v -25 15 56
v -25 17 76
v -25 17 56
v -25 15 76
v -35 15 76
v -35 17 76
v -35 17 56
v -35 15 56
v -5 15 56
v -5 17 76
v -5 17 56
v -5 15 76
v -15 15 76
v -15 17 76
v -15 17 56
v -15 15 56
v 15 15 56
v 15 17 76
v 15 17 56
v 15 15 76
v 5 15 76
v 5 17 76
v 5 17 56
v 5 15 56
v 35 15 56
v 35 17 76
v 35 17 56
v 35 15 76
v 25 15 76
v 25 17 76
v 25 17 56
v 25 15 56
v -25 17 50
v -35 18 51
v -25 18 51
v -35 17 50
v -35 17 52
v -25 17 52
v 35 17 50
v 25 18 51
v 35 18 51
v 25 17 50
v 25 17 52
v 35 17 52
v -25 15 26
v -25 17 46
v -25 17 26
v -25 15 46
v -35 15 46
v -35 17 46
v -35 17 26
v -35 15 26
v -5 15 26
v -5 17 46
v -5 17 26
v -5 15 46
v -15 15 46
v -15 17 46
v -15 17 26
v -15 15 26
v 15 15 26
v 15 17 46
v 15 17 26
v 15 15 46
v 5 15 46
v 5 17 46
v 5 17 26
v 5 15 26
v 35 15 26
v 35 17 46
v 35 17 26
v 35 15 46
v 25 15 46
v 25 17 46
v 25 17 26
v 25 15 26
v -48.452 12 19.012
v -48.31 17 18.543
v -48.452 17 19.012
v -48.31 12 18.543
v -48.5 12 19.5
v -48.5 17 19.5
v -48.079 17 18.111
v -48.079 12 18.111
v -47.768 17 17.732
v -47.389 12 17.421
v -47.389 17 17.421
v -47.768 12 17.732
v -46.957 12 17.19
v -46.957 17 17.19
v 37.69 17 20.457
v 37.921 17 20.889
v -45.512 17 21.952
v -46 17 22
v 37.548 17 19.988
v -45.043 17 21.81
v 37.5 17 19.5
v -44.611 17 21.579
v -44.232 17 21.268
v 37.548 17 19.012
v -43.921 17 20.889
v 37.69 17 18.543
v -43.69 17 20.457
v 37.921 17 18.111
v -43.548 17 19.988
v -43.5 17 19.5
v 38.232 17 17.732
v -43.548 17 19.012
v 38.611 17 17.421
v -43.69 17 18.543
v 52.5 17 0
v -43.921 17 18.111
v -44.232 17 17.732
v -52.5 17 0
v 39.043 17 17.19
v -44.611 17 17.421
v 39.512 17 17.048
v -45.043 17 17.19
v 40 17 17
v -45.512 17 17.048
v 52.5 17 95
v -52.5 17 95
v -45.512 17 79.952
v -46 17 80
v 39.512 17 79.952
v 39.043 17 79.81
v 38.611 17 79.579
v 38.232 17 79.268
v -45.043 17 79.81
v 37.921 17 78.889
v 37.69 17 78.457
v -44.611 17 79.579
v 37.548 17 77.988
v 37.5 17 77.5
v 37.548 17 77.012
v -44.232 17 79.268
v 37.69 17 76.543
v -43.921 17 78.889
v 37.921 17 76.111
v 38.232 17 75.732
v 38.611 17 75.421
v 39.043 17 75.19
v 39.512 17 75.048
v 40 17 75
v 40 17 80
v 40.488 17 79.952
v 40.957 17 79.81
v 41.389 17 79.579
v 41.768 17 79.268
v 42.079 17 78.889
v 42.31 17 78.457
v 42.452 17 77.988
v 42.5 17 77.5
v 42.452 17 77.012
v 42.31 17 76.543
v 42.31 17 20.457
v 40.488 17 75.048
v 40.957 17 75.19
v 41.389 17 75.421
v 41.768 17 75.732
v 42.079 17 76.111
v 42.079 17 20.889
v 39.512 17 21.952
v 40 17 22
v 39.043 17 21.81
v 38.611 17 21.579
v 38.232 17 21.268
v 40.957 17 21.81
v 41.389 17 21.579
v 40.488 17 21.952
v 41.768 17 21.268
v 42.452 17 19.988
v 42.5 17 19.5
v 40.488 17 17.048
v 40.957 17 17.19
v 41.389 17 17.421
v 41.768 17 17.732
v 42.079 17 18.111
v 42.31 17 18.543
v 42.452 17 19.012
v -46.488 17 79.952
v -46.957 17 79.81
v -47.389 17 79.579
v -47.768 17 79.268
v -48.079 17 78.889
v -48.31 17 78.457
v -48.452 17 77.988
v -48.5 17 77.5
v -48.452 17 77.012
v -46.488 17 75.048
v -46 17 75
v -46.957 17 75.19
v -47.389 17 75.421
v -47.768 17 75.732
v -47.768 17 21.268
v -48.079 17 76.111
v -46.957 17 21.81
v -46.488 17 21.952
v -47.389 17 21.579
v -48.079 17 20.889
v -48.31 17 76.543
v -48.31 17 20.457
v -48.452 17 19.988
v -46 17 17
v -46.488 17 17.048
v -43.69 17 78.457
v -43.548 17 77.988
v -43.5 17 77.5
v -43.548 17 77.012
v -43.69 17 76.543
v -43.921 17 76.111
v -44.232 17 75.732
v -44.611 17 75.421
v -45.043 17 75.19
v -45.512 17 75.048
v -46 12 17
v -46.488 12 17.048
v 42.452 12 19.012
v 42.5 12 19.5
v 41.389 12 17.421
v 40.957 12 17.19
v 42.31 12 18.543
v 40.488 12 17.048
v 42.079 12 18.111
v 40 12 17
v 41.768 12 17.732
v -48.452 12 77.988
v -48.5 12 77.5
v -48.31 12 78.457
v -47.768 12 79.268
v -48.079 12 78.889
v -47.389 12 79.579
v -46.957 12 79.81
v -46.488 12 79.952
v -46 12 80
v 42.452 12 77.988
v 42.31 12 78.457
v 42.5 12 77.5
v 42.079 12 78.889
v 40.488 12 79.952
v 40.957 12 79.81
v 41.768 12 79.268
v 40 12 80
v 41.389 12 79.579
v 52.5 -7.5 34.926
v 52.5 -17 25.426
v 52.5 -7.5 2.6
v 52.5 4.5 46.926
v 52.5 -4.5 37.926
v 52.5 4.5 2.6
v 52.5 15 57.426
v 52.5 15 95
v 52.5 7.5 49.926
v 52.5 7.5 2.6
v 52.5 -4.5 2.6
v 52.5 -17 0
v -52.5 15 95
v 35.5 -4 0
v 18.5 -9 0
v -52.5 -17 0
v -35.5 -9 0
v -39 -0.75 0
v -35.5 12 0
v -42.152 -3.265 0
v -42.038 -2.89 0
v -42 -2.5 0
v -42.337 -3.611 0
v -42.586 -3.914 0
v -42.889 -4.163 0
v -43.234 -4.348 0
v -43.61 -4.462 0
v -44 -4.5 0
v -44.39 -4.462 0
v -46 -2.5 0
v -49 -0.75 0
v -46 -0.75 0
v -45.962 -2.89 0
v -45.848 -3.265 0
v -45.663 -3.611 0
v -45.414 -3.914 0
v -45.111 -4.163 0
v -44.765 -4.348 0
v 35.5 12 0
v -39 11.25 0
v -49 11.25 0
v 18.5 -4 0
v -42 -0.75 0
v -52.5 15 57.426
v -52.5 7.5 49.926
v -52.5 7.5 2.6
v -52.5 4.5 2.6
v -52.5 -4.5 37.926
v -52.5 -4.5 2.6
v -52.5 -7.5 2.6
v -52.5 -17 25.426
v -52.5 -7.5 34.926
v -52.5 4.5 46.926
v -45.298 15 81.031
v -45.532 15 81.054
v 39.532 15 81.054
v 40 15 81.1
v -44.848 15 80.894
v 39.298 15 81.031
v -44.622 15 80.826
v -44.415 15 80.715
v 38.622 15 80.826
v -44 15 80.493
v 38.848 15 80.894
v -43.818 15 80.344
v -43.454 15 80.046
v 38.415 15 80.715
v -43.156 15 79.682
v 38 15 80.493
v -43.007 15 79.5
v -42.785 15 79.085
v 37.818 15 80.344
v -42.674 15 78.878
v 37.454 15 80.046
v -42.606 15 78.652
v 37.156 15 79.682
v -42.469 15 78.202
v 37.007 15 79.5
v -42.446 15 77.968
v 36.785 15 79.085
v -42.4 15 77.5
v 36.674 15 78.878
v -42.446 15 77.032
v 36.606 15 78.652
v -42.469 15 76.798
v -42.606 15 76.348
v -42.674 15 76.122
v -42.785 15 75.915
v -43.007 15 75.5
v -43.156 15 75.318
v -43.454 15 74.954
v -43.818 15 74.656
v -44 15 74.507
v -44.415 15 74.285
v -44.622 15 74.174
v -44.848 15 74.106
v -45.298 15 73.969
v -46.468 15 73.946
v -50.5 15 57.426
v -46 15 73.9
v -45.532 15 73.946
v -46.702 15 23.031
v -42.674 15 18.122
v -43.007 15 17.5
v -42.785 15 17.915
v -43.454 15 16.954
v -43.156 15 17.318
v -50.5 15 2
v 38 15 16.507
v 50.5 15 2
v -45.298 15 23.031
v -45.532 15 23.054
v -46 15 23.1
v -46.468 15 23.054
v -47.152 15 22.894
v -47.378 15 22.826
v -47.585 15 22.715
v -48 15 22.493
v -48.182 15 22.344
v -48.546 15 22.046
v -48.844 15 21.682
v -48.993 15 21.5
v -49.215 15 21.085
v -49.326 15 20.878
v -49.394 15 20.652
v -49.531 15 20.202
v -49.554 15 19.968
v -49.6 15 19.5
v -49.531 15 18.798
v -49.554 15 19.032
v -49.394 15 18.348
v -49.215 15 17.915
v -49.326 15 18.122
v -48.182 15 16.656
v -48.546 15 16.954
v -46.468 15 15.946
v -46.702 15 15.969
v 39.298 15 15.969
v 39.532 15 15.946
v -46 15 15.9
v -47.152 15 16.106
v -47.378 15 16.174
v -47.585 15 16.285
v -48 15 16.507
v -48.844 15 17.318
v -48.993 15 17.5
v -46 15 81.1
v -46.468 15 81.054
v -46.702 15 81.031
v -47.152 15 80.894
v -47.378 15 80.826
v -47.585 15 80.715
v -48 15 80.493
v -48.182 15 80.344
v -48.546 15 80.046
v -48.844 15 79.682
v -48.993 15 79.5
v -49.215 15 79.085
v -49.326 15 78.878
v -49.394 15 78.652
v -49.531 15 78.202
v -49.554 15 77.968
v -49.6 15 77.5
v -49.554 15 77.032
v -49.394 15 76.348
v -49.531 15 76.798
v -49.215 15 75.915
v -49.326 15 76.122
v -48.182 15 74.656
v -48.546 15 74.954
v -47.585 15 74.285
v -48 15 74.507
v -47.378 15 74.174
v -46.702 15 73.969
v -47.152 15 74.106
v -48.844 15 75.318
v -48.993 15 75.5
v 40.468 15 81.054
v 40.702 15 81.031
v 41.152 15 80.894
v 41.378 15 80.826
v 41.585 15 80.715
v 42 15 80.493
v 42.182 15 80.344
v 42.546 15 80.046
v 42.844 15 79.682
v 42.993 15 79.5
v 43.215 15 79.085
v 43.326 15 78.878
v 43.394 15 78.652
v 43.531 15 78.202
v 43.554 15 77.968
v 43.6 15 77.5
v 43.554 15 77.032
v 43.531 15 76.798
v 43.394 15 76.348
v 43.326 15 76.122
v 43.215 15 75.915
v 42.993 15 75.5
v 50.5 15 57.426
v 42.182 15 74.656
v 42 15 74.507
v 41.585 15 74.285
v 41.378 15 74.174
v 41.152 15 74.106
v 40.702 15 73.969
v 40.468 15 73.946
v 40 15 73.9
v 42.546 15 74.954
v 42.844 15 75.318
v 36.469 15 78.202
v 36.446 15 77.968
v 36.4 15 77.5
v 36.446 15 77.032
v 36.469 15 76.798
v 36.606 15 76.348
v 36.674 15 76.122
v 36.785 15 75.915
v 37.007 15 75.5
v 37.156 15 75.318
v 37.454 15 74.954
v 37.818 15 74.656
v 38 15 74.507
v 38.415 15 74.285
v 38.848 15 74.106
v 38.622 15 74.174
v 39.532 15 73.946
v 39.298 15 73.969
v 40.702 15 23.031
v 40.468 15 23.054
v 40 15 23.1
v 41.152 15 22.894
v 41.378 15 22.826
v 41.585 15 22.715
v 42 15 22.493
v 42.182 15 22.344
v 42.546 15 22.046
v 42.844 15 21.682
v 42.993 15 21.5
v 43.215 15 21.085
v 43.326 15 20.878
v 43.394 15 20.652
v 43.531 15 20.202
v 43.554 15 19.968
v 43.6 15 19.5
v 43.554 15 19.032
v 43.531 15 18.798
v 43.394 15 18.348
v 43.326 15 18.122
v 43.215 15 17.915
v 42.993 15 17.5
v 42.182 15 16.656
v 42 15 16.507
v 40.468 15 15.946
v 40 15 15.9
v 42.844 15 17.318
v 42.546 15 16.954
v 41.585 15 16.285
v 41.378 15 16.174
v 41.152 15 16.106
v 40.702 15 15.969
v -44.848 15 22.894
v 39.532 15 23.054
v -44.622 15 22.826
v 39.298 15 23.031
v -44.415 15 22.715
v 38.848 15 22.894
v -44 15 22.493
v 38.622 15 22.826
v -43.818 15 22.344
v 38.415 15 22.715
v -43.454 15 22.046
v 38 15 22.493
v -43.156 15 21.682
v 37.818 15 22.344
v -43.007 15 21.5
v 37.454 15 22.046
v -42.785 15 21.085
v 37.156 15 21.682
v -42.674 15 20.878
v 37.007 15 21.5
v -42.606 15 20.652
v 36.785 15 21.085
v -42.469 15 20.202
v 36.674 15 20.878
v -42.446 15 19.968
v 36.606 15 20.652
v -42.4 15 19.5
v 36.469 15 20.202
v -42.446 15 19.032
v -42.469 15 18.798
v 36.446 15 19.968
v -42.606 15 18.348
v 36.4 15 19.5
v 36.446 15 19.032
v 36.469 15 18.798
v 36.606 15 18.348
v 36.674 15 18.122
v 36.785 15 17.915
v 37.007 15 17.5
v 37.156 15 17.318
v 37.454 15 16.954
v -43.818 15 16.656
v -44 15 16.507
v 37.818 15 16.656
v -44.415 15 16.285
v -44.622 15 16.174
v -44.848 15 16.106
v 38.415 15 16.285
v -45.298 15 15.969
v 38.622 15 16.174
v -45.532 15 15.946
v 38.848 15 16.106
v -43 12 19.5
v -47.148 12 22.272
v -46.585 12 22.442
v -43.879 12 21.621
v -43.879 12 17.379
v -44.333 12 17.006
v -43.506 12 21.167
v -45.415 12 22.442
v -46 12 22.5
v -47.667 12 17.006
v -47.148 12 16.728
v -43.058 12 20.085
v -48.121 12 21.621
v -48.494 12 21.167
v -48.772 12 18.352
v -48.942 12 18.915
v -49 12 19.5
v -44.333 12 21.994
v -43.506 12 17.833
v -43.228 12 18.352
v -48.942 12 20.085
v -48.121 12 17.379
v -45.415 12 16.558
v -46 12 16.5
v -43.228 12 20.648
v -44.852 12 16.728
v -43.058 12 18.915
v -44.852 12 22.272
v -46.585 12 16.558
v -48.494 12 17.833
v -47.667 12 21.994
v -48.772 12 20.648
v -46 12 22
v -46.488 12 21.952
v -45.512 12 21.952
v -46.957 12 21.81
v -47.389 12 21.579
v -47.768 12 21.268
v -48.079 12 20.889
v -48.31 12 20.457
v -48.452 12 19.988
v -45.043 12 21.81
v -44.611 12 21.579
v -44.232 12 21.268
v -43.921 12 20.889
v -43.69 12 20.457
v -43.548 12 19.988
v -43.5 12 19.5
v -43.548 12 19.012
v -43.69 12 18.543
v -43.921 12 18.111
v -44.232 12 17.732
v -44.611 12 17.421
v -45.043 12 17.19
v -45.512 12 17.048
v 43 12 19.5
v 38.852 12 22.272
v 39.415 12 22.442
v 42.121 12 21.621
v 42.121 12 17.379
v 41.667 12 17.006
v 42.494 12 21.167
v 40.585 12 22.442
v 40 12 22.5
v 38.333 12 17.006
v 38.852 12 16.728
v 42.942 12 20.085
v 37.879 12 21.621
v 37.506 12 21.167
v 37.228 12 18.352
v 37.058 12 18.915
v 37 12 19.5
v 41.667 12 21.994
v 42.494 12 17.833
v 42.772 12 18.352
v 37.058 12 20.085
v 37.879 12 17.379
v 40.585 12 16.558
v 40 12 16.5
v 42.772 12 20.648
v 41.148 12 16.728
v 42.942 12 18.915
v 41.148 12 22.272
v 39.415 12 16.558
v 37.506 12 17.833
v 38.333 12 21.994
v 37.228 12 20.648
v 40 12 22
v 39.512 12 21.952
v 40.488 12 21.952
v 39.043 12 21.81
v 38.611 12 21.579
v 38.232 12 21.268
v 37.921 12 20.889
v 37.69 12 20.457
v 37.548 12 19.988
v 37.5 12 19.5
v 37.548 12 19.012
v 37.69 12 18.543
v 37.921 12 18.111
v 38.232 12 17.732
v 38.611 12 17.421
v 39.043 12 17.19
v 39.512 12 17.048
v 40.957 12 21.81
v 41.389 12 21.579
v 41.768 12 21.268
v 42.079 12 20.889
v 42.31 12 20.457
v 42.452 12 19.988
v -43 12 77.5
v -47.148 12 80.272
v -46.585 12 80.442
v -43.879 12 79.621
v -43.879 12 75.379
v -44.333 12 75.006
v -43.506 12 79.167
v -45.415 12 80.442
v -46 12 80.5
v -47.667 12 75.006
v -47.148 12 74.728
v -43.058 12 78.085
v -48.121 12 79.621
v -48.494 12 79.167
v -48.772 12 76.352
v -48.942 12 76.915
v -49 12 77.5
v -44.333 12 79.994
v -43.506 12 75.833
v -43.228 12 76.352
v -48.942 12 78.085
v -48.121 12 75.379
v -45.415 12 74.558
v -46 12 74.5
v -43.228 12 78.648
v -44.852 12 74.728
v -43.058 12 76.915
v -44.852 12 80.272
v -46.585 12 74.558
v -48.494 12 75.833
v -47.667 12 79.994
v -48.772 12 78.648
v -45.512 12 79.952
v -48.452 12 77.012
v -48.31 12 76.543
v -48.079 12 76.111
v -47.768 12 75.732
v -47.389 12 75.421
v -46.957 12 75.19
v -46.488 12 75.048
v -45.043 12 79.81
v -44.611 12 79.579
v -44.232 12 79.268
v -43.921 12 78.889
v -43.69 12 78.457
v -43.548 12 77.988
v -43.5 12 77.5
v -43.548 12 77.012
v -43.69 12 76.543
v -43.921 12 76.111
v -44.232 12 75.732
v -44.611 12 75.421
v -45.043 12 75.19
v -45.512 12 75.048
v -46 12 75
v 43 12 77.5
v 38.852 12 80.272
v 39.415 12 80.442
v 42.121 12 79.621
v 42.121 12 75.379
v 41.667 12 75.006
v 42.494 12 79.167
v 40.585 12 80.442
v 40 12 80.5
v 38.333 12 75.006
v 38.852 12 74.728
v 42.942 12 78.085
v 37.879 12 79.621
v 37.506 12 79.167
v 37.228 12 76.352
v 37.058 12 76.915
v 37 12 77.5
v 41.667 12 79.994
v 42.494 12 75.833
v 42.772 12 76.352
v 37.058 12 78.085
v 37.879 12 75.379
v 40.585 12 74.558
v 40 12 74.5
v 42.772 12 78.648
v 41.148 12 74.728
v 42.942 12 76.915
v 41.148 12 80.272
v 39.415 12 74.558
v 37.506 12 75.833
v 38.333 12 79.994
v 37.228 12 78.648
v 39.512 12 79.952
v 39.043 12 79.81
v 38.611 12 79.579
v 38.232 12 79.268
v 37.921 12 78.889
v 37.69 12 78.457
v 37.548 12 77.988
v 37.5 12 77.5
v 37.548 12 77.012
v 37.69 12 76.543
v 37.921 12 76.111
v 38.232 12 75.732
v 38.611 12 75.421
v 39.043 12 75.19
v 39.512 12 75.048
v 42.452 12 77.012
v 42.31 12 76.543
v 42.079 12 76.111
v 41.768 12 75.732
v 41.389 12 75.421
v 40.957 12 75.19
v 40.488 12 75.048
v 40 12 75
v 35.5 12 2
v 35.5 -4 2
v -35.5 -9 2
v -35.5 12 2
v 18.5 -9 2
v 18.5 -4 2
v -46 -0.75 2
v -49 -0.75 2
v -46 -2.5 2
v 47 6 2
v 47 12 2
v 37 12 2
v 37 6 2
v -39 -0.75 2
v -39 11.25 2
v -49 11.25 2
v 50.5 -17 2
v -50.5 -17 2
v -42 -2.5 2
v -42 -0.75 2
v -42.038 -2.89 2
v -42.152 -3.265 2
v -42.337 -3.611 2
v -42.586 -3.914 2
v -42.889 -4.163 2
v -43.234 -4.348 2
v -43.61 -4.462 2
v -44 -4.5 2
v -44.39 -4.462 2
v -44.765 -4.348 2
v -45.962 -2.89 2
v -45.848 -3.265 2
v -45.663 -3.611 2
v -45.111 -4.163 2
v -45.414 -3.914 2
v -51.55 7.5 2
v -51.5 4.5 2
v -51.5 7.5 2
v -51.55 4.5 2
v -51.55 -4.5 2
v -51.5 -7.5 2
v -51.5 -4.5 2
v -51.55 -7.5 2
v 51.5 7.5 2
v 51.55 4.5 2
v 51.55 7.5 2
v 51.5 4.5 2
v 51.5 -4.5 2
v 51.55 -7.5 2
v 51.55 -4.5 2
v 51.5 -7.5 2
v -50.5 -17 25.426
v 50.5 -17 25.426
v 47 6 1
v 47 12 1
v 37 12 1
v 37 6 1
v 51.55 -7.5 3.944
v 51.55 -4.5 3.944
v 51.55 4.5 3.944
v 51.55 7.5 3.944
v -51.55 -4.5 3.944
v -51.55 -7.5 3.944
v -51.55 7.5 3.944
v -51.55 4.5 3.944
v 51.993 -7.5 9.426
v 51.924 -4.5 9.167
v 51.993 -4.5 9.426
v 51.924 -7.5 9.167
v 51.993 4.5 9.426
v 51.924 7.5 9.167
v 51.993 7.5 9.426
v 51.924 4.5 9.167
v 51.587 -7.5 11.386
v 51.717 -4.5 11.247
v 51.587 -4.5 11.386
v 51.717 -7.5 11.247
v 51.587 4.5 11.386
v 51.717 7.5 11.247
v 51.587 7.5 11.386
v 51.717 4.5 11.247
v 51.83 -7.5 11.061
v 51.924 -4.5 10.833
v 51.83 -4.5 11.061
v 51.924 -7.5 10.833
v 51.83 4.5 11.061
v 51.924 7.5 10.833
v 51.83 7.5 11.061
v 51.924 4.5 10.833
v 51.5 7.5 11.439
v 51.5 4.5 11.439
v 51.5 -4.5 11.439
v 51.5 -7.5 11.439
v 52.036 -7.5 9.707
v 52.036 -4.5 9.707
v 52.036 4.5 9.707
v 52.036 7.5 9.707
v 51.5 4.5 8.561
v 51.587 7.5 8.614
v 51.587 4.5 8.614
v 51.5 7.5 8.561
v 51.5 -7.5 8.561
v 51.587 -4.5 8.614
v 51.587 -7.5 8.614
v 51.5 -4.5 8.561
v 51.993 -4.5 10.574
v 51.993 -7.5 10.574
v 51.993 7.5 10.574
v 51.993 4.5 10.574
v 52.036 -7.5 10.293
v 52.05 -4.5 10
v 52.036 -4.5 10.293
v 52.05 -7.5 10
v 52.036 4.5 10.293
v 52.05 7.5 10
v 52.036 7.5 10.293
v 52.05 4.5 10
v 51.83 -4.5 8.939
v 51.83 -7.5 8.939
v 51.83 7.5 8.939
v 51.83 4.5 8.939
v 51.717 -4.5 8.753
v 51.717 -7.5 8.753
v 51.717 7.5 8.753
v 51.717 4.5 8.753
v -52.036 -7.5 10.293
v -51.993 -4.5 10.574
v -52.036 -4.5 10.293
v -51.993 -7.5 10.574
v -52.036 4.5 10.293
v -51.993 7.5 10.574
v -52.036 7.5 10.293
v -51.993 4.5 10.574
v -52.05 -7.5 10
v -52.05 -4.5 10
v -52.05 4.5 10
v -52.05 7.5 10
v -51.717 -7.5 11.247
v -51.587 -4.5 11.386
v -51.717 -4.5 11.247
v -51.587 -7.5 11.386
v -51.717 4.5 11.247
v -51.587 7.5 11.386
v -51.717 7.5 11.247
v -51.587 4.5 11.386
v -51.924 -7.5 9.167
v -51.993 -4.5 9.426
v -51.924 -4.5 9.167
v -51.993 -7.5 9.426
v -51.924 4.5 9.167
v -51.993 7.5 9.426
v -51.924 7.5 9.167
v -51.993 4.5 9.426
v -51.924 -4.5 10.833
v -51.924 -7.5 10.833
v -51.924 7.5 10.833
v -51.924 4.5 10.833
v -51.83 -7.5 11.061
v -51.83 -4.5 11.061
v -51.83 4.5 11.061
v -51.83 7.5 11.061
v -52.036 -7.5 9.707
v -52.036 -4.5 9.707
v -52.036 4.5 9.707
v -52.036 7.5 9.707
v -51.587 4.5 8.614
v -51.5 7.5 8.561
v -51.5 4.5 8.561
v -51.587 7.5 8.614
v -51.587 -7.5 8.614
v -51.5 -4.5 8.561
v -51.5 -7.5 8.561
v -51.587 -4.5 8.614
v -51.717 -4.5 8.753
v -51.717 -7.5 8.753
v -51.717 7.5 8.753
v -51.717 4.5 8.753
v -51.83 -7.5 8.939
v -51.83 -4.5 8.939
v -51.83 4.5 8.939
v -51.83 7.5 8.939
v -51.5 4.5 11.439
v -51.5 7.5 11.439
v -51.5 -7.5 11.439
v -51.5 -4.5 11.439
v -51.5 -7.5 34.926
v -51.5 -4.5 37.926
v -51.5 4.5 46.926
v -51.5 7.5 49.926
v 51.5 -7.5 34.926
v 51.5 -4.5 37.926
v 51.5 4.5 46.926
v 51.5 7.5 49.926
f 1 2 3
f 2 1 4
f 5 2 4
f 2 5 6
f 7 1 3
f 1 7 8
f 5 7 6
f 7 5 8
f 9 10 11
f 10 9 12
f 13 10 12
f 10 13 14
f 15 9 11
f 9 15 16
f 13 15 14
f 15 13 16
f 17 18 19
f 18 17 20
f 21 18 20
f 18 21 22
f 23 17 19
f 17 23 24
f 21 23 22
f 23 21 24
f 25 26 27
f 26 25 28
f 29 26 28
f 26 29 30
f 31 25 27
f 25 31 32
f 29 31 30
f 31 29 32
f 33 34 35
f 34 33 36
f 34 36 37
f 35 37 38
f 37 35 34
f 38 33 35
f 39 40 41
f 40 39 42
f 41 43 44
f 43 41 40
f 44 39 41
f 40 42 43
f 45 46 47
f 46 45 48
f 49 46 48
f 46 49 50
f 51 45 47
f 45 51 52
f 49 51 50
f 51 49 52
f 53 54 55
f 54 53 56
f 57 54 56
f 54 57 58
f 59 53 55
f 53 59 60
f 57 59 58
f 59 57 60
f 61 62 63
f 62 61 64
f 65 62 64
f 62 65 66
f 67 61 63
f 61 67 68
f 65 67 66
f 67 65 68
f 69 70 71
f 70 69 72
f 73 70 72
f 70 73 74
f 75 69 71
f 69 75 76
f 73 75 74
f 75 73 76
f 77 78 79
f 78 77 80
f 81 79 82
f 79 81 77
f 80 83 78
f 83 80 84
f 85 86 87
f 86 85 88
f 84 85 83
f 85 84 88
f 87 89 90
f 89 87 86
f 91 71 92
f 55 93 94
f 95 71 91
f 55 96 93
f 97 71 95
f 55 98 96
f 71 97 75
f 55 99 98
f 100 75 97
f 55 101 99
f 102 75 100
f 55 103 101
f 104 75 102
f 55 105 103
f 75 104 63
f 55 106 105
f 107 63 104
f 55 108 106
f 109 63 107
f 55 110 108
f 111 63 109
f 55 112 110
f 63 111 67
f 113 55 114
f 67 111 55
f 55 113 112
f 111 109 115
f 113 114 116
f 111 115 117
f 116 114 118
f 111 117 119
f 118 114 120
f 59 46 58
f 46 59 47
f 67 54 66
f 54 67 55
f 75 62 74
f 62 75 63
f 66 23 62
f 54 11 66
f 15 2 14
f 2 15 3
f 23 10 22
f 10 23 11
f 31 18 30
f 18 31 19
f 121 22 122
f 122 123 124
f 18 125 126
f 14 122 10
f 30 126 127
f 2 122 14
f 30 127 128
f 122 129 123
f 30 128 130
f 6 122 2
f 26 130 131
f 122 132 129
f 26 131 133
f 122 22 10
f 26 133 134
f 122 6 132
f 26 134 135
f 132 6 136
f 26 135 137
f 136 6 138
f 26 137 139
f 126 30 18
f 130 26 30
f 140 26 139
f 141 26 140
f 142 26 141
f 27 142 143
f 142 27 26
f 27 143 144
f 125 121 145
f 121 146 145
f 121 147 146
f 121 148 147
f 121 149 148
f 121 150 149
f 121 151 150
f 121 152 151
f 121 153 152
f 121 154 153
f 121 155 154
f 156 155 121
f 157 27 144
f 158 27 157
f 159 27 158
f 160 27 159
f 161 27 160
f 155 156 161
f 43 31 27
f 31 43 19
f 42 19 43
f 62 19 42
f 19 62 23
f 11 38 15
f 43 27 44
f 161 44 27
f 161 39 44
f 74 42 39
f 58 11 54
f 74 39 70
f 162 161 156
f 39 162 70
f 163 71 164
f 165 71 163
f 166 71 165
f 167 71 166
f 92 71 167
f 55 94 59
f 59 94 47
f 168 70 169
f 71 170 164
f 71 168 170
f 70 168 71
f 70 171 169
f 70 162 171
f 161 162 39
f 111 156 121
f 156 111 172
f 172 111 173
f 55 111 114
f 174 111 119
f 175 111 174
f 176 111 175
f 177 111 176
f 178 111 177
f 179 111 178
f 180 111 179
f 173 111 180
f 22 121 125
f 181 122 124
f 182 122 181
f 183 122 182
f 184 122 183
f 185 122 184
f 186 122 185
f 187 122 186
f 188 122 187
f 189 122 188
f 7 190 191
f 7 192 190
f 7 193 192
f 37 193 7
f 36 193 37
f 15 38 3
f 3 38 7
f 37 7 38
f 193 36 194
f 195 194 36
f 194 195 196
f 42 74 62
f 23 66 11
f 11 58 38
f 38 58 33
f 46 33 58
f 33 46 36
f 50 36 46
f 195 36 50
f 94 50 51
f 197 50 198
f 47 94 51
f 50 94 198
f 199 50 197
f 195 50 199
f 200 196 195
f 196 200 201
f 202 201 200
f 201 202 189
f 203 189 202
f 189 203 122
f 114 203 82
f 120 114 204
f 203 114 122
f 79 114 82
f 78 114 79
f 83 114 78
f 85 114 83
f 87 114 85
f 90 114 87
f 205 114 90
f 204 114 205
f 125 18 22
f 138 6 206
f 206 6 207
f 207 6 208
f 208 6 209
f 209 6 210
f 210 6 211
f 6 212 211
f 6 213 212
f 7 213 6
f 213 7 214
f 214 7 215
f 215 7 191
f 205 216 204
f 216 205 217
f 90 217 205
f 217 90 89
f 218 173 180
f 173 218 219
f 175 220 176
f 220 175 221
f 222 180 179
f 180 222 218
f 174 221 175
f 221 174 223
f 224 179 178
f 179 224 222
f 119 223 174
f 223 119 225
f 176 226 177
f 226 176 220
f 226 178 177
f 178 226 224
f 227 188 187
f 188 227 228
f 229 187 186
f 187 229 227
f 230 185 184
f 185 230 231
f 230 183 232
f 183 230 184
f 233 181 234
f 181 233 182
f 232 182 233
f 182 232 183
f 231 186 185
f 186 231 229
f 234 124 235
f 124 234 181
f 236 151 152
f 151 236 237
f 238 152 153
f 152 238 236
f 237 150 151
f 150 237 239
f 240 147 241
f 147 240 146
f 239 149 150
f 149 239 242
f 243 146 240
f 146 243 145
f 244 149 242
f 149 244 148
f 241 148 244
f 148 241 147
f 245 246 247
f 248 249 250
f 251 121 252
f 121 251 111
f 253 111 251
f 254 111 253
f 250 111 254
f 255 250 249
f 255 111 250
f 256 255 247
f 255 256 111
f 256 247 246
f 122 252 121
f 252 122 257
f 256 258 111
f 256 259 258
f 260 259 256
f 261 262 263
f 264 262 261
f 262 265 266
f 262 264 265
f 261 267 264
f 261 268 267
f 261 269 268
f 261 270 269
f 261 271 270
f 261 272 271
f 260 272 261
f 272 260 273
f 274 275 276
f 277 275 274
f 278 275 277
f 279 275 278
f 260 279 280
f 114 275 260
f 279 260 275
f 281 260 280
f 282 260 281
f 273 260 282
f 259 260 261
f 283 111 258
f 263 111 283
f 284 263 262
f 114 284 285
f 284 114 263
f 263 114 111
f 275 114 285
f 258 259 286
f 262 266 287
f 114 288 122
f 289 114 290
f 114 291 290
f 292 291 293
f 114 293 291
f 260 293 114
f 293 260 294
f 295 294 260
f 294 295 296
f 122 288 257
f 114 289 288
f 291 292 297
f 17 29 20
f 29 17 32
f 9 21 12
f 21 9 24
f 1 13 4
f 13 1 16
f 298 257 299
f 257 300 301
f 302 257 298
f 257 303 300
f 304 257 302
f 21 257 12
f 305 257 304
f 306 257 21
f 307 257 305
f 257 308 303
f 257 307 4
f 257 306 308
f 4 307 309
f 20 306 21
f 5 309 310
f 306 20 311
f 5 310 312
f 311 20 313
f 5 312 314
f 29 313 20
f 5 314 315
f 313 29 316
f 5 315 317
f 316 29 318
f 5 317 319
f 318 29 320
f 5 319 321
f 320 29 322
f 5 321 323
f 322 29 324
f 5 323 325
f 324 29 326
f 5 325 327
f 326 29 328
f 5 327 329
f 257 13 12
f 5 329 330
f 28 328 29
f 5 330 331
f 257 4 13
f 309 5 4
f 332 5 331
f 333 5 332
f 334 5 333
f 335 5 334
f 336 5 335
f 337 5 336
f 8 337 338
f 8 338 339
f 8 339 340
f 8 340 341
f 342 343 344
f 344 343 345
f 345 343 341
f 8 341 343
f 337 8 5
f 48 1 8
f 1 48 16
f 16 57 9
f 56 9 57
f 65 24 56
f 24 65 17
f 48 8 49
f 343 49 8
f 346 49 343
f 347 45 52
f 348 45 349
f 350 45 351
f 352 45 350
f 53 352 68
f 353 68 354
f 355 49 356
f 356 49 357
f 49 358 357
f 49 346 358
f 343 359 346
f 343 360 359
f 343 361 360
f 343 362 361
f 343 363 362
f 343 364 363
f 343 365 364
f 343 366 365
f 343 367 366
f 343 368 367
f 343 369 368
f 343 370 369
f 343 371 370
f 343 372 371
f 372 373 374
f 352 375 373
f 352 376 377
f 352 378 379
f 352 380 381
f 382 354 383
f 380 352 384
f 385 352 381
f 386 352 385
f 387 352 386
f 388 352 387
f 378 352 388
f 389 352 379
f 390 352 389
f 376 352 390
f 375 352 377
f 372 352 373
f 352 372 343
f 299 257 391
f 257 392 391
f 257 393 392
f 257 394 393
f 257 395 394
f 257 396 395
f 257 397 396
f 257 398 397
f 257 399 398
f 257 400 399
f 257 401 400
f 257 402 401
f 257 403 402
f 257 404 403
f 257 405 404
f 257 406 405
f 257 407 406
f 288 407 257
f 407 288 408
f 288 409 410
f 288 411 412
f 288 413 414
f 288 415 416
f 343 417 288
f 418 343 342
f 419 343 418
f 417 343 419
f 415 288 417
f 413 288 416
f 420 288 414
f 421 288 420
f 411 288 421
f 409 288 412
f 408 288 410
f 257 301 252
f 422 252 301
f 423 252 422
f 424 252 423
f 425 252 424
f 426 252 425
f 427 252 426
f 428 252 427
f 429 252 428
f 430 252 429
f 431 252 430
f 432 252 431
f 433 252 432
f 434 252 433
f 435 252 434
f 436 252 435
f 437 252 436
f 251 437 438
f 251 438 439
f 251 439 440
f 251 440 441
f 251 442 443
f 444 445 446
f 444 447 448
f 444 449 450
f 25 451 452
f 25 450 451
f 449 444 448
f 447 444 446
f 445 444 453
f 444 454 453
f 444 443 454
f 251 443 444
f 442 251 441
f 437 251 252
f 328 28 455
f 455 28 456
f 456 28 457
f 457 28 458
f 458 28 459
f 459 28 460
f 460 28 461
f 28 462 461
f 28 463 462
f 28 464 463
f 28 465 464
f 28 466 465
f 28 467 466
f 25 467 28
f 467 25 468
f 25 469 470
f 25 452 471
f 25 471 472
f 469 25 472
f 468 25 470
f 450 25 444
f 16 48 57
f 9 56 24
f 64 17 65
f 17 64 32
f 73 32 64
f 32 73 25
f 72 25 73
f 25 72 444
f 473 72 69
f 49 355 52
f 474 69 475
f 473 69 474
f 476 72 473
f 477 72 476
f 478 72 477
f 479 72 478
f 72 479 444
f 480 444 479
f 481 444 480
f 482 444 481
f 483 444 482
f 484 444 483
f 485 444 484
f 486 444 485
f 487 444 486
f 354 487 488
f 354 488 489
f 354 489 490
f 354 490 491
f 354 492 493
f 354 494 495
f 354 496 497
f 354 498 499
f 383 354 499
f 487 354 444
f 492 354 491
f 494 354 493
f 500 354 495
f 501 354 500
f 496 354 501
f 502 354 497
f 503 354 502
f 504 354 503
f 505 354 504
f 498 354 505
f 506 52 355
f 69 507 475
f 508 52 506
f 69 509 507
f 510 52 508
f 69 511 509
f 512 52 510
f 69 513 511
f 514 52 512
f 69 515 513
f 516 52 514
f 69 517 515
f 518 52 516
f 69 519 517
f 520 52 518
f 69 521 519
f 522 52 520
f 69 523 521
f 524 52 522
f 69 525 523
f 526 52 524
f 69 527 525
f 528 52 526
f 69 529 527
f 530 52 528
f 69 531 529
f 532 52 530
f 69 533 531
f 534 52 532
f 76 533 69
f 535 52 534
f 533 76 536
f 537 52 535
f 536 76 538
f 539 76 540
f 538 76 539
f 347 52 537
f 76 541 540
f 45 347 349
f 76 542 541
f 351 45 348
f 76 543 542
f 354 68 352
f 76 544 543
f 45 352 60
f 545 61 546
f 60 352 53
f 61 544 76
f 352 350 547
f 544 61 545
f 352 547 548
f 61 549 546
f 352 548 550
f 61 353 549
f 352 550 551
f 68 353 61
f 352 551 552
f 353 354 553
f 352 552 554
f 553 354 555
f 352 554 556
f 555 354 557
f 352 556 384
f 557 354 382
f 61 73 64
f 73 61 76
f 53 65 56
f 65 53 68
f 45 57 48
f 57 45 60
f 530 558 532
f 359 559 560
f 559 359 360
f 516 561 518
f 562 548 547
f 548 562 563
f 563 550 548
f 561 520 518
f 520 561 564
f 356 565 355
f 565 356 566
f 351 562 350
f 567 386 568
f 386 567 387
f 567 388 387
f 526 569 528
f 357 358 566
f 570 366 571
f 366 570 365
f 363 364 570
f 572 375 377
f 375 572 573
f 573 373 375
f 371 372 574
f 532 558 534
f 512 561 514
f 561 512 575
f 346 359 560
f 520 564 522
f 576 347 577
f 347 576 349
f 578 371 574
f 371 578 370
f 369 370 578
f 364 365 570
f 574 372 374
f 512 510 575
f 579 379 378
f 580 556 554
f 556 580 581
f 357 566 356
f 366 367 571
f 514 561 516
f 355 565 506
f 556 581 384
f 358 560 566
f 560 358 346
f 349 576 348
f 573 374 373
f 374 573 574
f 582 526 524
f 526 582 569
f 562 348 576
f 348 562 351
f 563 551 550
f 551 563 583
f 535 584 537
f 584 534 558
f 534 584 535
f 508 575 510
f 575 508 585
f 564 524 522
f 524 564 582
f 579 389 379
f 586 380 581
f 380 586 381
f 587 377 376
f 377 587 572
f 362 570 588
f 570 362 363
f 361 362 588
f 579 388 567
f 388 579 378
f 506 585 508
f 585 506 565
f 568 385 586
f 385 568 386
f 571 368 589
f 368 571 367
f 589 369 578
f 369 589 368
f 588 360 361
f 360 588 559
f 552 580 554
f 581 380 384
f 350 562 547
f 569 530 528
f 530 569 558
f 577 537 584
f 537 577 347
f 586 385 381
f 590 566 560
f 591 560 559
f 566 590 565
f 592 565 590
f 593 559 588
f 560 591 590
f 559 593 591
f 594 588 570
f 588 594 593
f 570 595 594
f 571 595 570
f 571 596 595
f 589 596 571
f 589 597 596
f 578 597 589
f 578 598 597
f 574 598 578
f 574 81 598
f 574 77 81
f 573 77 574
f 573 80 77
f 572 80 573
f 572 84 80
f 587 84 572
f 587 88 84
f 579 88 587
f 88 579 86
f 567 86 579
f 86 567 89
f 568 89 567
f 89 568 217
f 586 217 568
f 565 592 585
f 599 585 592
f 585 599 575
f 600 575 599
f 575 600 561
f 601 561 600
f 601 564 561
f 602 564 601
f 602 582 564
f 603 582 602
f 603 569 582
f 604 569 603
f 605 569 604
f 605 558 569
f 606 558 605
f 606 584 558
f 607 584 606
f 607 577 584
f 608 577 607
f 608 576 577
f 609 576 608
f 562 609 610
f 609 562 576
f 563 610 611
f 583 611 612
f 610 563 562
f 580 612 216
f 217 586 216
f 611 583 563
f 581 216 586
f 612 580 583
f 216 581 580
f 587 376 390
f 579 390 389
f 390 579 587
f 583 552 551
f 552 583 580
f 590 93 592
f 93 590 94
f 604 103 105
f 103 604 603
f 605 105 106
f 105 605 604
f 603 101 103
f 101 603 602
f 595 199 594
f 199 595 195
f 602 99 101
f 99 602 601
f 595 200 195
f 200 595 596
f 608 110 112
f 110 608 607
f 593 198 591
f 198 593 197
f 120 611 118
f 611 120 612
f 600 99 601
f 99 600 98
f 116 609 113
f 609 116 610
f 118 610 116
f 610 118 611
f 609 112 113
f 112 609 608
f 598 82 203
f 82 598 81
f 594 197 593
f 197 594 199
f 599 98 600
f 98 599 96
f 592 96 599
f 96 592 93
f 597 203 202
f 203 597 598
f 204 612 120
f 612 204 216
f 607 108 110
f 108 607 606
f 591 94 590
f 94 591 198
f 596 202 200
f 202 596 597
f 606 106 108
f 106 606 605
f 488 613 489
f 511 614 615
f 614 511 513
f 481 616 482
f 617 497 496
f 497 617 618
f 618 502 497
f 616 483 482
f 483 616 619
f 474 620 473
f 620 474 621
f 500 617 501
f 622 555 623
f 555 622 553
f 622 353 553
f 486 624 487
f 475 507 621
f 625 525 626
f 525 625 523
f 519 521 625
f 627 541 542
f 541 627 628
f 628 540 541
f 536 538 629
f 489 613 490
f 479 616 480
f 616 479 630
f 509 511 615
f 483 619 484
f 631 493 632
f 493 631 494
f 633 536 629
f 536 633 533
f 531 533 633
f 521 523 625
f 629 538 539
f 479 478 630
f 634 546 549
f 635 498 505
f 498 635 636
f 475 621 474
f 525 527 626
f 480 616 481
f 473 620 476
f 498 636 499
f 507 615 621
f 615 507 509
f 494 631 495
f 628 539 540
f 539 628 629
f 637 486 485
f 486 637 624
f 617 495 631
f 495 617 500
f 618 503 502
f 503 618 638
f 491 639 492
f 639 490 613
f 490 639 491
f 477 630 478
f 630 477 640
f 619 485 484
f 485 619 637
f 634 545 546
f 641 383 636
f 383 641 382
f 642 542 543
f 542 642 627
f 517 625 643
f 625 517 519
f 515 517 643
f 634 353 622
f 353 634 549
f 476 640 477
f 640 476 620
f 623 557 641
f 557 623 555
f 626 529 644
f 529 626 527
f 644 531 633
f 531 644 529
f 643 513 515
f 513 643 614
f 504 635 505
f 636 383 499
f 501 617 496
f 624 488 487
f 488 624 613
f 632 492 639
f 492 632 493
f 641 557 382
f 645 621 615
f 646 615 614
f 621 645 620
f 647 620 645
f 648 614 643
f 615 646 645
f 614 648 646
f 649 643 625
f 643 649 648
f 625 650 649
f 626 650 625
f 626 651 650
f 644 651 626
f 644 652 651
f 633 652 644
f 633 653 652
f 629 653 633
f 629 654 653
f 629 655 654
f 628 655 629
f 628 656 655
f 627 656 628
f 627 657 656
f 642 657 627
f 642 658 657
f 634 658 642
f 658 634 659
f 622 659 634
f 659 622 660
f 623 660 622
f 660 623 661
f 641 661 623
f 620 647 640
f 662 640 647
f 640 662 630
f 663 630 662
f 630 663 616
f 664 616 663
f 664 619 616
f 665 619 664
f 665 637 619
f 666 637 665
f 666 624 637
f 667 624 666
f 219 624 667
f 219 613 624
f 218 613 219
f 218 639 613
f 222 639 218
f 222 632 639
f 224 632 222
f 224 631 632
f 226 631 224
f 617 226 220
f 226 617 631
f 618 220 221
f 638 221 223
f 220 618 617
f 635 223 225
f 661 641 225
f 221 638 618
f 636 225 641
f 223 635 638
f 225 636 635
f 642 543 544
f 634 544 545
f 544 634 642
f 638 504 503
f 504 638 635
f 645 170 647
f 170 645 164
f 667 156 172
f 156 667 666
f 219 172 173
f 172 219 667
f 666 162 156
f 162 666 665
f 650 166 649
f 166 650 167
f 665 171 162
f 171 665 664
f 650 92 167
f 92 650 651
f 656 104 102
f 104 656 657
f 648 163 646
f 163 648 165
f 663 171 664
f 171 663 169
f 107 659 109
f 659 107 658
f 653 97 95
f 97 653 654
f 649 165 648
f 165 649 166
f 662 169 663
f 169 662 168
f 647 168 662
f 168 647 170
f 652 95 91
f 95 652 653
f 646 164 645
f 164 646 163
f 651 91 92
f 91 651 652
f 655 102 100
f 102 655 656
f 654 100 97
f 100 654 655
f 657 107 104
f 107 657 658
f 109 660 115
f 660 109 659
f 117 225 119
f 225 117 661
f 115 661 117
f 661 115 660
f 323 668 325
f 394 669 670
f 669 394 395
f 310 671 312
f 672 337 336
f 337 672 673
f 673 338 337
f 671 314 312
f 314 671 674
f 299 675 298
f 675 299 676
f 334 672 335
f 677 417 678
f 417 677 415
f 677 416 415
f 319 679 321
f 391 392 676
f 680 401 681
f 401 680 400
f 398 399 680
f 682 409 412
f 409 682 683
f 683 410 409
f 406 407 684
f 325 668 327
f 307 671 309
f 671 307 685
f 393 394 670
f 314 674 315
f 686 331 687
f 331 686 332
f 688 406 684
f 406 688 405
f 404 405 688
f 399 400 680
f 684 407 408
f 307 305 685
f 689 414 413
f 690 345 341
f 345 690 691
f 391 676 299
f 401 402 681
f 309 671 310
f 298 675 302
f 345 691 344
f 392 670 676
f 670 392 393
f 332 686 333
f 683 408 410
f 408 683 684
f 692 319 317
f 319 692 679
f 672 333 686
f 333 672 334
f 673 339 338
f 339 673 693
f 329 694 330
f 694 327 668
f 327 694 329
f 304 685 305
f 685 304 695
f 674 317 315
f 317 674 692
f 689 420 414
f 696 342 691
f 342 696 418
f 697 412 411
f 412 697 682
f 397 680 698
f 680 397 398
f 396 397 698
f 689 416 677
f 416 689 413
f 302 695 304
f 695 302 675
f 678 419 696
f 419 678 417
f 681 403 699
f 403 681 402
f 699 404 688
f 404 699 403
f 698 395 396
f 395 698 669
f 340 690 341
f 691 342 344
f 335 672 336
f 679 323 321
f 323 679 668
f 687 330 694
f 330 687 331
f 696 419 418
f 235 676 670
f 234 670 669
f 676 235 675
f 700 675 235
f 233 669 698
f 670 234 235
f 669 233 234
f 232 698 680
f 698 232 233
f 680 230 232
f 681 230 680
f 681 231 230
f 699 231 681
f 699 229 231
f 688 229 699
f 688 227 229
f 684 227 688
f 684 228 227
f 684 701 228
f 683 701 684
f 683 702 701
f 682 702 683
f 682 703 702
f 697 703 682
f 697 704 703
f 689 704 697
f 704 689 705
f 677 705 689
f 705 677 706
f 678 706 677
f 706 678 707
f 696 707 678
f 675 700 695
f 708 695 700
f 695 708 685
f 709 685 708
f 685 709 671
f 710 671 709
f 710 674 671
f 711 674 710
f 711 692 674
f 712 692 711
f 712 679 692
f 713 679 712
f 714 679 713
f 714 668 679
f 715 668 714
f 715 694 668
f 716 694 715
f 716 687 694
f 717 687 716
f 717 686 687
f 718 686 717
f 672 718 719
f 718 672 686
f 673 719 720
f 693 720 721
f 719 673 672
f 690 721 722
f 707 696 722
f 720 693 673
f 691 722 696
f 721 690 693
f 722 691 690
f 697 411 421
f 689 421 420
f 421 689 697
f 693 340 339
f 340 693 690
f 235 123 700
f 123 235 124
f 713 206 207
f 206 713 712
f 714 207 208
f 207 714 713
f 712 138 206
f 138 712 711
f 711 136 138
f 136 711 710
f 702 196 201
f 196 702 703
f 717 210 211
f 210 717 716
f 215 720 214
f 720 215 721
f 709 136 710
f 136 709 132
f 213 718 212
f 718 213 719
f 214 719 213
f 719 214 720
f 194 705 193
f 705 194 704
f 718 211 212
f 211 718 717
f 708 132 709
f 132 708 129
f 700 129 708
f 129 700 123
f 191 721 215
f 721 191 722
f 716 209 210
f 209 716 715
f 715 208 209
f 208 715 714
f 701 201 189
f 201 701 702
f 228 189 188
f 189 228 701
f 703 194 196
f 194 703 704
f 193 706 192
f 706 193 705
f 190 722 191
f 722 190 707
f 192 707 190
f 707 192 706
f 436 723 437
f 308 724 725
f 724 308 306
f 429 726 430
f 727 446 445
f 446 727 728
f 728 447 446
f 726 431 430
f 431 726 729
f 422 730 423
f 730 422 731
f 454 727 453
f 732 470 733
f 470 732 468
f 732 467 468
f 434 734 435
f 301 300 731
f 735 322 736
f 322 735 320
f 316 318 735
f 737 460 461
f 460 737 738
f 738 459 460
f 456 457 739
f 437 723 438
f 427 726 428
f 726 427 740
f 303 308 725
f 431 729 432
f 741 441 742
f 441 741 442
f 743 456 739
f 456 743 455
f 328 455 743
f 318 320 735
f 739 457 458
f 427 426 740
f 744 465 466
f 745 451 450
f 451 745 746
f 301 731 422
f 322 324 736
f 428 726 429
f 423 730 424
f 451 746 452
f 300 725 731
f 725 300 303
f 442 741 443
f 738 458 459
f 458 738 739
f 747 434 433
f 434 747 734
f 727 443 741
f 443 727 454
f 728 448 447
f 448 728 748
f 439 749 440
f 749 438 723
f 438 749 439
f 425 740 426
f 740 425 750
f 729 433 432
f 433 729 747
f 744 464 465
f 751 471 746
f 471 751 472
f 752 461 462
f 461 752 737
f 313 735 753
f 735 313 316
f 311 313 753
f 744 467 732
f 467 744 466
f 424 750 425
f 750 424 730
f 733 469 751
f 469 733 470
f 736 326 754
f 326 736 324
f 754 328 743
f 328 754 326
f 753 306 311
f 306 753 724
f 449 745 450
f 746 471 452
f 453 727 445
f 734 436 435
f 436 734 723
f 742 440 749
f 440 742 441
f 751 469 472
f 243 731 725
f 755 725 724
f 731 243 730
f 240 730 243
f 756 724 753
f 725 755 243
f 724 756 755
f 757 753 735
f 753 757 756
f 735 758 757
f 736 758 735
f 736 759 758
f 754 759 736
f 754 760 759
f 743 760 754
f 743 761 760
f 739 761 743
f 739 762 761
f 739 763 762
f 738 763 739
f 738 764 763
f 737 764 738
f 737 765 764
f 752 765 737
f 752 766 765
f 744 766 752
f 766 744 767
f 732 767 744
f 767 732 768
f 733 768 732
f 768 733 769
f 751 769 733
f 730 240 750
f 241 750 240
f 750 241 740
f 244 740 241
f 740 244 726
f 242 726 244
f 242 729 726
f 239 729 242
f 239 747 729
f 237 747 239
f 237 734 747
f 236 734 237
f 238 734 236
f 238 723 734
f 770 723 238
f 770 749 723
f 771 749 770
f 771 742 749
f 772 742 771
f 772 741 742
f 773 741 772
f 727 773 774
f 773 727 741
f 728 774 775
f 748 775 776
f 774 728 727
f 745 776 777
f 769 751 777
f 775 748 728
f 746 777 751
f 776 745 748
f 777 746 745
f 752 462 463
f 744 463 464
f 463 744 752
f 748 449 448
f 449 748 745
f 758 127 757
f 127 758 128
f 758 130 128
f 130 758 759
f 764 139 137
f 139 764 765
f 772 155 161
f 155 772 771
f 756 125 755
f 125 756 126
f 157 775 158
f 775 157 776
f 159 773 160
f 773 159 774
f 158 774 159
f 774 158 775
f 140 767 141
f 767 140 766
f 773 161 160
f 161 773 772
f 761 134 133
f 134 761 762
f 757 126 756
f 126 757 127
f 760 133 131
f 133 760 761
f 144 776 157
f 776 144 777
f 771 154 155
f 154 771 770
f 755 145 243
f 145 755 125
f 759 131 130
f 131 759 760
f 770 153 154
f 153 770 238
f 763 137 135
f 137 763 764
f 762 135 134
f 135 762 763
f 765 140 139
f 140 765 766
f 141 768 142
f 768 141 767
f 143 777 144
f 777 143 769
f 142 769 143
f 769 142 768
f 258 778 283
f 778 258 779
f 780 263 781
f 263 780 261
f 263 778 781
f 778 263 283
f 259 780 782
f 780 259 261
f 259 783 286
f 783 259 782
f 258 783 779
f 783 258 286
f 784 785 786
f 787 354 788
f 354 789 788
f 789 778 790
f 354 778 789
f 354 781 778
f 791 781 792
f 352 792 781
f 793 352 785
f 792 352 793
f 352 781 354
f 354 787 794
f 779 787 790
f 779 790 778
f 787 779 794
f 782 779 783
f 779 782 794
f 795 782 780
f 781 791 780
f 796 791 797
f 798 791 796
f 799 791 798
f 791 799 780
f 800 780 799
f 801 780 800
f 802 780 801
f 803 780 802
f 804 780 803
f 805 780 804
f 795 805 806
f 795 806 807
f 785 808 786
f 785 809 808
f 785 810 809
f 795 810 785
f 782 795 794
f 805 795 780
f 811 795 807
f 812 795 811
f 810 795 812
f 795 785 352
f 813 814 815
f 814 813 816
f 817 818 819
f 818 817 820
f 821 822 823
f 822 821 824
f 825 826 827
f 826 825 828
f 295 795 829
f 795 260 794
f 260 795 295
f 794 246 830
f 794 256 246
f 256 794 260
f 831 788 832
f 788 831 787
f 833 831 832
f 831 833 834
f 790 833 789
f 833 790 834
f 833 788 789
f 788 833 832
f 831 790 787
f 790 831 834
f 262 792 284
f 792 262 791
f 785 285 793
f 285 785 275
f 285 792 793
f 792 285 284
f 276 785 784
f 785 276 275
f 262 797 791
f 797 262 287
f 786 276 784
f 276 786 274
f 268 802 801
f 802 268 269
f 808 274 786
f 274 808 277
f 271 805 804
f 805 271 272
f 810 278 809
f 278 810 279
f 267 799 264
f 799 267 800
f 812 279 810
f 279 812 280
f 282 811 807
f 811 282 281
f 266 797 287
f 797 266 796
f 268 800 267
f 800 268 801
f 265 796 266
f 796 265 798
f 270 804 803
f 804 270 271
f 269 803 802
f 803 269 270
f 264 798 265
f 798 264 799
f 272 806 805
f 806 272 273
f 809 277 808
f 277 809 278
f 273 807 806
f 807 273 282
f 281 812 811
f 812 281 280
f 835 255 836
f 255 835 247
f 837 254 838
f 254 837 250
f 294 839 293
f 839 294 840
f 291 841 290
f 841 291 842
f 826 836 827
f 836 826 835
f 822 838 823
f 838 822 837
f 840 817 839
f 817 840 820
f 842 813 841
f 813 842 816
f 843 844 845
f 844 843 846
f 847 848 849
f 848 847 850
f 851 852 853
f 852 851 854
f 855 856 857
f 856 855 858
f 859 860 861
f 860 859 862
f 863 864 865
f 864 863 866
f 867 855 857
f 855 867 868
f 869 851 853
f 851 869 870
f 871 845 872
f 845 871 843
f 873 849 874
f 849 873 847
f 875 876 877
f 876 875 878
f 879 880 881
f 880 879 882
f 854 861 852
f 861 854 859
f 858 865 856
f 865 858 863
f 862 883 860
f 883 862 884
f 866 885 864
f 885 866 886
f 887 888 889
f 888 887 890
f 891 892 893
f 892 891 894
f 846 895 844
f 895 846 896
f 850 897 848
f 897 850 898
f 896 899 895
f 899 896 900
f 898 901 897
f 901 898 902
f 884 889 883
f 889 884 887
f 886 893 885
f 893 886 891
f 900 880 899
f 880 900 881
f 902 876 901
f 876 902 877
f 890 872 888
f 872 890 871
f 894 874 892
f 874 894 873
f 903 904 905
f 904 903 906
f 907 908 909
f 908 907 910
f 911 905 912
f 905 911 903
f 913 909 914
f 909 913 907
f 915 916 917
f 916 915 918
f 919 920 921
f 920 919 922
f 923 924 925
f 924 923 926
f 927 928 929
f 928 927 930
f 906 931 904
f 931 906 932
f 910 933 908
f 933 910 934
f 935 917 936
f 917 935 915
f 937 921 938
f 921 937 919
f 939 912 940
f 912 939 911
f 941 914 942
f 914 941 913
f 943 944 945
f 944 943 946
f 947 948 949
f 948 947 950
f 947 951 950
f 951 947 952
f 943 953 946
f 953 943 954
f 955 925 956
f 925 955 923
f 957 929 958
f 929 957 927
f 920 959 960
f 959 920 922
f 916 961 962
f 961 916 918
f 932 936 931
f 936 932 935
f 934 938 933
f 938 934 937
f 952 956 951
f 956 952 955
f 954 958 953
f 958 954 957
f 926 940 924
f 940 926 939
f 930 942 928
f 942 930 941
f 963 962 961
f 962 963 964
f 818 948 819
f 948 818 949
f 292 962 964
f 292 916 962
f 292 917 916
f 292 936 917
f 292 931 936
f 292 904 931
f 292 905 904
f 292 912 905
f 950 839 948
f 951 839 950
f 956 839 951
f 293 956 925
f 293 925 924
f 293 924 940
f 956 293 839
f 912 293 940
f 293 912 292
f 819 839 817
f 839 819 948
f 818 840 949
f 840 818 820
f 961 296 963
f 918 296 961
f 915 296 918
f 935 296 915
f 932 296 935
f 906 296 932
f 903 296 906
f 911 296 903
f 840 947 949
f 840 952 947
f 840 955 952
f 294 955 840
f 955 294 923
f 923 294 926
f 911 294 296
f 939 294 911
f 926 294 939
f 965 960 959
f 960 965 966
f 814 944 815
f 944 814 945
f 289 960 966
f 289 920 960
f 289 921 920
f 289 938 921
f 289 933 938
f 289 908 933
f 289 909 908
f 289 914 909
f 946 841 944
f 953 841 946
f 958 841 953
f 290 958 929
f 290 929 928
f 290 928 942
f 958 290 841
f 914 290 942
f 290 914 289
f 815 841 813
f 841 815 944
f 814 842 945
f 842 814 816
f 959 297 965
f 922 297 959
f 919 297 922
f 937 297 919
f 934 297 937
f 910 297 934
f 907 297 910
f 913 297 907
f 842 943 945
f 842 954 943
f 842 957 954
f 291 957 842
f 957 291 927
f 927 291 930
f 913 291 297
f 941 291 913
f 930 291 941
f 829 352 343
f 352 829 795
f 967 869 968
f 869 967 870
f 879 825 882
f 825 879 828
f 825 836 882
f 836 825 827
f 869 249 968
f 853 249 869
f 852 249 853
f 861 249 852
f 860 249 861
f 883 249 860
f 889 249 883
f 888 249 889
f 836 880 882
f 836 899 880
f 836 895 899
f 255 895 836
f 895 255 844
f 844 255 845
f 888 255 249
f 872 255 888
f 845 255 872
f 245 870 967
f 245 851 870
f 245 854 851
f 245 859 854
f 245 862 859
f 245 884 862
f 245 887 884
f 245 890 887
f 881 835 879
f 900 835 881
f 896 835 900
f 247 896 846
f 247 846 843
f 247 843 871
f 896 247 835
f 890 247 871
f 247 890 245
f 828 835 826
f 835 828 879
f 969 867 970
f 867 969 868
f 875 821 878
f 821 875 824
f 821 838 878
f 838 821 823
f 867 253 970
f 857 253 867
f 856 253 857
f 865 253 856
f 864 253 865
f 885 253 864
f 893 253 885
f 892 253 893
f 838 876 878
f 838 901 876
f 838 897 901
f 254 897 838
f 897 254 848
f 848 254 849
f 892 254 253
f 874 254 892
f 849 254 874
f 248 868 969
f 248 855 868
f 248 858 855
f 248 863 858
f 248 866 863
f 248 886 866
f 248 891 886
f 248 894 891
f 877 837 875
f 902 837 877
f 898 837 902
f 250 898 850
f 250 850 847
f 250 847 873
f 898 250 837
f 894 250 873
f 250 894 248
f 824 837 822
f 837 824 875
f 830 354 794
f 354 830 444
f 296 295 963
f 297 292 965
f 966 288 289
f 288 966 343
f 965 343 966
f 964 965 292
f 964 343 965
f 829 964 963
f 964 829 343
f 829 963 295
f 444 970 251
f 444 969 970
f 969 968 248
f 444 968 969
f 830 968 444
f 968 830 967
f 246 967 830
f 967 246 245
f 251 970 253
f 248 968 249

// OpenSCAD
W=106-1;
H=35-1;
difference() {

  cube_center([W, H, 2]);
    
    difference() {
        translate([0,1.5,-.3])
        cube_center([71, 21, 5]);
        
        translate([54,-16])
        translate([0,1.5,-.3])
        cube_center([71, 21, 10]);
    }
    
    
    // usb
    translate([42.,9,1])
    cube_center([10, 6, 5]);
    
    // power
    translate([-44,,5.25,-.3])
    cube_center([10, 12, 5]);
    
    translate([-44,-2.5,-.3])
    minkowski() {
        cylinder(d=4,h=50,center=true,$fn=32);
        cube([0.0001,3,0.0001]);
    }
}


difference() {
translate([0,H/2-1,0])
cube_center([W, 2, 95]);

for(i=[-30,-10,10,30])
translate([i,H/2-1,56])    
cube_center([10, 3, 20]);

for(i=[-30,-10,10,30])
translate([i,H/2-1,26])    
cube_center([10, 3, 20]);

translate([-3,H/2,47.75+0.75])
rotate([90,0,0])
xaviernxminus();
    
}

difference() {
    union() {
        cube_center([W,H,0]);
    translate([0,0,1])
    minkowski() {
        cube_center([W-2,H-2,1.6]);
        rotate([0,0,45])
        cylinder(d1=2*sqrt(2),d2=0,h=2/sqrt(2),$fn=4);
    }
}
    
    cube_center([W-2+.1,H+5+.1,50]);
}

for(s=[-1,1])
translate([s*30,H/2,50+1])
rotate([0,90,0])
cylinder(d=2,h=10,$fn=4,center=true);


difference() {
    // side panels
for(s=[-1,1])
    scale([s,1,1]) {
        
         for(t=[-1,1])
    translate([t*(106/2-1.7),0,10 ])
    scale([.5,1,1])
    rotate([90,0,0])
    cylinder(d=3,h=20, center=true,$fn=32);
         
         
        difference() {
    translate([W/2-1,0,0])
    cube_center([2,H,90]);
            // rails
            for(t=[-1,1])
    translate([W/2-1+2-1,t*6,0])
    cube_center([2,3,90]);
            
        }
    }
    
    rotate([45,0,0])
    translate([0,0,30])
    cube_center([200,200,200]);
    
}


translate([-3,H/2,47.75+0.75])
rotate([90,0,0])
xaviernx();

module xaviernx() {
    translate([-86/2,-58/2,0])
    standoff();
    
    translate([86/2,-58/2,0])
    standoff();
    
    translate([-86/2,58/2,0])
    standoff();
    
    translate([86/2,58/2,0])
    standoff();
}

module xaviernxminus() {
    translate([-86/2,-58/2,0])
    cylinder(d=5,h=5,$fn=32);
    
    translate([86/2,-58/2,0])
    cylinder(d=5,h=5,$fn=32);
    
    translate([-86/2,58/2,0])
    cylinder(d=5,h=5,$fn=32);
    
    translate([86/2,58/2,0])
    cylinder(d=5,h=5,$fn=32);
}


module standoff() {
    difference() {
        cylinder(d1=8,d2=6,h=5,$fn=32);
        cylinder(d=5,h=10, $fn=32);
    }
}

/*difference() {
    cube_center([W, H, 2]);
    for(i=[-10:5:10]) for(j=[-47.5:5:47.5])
    translate([j,i,-.1])
    cube_center([3,3,5]);
}*/


//translate([-34.8,4,41.75]) rotate([90,0,0]) import("/home/dheera/code/3d/rack/Jetson_Xavier_NX_DevKit_LQ.stl");


module cube_center(dims,r=0,$fn=64) {
    if(r==0) {
        translate([-dims[0]/2, -dims[1]/2, 0])
        cube(dims);
    } else {
        minkowski() {
            translate([-(dims[0]-2*r)/2, -(dims[1]-2*r)/2, 0])
            cube([dims[0]-2*r,dims[1]-2*r,dims[2]]);
            cylinder(r=r,$fn=$fn,h=0.0001);
        }
    }
}
